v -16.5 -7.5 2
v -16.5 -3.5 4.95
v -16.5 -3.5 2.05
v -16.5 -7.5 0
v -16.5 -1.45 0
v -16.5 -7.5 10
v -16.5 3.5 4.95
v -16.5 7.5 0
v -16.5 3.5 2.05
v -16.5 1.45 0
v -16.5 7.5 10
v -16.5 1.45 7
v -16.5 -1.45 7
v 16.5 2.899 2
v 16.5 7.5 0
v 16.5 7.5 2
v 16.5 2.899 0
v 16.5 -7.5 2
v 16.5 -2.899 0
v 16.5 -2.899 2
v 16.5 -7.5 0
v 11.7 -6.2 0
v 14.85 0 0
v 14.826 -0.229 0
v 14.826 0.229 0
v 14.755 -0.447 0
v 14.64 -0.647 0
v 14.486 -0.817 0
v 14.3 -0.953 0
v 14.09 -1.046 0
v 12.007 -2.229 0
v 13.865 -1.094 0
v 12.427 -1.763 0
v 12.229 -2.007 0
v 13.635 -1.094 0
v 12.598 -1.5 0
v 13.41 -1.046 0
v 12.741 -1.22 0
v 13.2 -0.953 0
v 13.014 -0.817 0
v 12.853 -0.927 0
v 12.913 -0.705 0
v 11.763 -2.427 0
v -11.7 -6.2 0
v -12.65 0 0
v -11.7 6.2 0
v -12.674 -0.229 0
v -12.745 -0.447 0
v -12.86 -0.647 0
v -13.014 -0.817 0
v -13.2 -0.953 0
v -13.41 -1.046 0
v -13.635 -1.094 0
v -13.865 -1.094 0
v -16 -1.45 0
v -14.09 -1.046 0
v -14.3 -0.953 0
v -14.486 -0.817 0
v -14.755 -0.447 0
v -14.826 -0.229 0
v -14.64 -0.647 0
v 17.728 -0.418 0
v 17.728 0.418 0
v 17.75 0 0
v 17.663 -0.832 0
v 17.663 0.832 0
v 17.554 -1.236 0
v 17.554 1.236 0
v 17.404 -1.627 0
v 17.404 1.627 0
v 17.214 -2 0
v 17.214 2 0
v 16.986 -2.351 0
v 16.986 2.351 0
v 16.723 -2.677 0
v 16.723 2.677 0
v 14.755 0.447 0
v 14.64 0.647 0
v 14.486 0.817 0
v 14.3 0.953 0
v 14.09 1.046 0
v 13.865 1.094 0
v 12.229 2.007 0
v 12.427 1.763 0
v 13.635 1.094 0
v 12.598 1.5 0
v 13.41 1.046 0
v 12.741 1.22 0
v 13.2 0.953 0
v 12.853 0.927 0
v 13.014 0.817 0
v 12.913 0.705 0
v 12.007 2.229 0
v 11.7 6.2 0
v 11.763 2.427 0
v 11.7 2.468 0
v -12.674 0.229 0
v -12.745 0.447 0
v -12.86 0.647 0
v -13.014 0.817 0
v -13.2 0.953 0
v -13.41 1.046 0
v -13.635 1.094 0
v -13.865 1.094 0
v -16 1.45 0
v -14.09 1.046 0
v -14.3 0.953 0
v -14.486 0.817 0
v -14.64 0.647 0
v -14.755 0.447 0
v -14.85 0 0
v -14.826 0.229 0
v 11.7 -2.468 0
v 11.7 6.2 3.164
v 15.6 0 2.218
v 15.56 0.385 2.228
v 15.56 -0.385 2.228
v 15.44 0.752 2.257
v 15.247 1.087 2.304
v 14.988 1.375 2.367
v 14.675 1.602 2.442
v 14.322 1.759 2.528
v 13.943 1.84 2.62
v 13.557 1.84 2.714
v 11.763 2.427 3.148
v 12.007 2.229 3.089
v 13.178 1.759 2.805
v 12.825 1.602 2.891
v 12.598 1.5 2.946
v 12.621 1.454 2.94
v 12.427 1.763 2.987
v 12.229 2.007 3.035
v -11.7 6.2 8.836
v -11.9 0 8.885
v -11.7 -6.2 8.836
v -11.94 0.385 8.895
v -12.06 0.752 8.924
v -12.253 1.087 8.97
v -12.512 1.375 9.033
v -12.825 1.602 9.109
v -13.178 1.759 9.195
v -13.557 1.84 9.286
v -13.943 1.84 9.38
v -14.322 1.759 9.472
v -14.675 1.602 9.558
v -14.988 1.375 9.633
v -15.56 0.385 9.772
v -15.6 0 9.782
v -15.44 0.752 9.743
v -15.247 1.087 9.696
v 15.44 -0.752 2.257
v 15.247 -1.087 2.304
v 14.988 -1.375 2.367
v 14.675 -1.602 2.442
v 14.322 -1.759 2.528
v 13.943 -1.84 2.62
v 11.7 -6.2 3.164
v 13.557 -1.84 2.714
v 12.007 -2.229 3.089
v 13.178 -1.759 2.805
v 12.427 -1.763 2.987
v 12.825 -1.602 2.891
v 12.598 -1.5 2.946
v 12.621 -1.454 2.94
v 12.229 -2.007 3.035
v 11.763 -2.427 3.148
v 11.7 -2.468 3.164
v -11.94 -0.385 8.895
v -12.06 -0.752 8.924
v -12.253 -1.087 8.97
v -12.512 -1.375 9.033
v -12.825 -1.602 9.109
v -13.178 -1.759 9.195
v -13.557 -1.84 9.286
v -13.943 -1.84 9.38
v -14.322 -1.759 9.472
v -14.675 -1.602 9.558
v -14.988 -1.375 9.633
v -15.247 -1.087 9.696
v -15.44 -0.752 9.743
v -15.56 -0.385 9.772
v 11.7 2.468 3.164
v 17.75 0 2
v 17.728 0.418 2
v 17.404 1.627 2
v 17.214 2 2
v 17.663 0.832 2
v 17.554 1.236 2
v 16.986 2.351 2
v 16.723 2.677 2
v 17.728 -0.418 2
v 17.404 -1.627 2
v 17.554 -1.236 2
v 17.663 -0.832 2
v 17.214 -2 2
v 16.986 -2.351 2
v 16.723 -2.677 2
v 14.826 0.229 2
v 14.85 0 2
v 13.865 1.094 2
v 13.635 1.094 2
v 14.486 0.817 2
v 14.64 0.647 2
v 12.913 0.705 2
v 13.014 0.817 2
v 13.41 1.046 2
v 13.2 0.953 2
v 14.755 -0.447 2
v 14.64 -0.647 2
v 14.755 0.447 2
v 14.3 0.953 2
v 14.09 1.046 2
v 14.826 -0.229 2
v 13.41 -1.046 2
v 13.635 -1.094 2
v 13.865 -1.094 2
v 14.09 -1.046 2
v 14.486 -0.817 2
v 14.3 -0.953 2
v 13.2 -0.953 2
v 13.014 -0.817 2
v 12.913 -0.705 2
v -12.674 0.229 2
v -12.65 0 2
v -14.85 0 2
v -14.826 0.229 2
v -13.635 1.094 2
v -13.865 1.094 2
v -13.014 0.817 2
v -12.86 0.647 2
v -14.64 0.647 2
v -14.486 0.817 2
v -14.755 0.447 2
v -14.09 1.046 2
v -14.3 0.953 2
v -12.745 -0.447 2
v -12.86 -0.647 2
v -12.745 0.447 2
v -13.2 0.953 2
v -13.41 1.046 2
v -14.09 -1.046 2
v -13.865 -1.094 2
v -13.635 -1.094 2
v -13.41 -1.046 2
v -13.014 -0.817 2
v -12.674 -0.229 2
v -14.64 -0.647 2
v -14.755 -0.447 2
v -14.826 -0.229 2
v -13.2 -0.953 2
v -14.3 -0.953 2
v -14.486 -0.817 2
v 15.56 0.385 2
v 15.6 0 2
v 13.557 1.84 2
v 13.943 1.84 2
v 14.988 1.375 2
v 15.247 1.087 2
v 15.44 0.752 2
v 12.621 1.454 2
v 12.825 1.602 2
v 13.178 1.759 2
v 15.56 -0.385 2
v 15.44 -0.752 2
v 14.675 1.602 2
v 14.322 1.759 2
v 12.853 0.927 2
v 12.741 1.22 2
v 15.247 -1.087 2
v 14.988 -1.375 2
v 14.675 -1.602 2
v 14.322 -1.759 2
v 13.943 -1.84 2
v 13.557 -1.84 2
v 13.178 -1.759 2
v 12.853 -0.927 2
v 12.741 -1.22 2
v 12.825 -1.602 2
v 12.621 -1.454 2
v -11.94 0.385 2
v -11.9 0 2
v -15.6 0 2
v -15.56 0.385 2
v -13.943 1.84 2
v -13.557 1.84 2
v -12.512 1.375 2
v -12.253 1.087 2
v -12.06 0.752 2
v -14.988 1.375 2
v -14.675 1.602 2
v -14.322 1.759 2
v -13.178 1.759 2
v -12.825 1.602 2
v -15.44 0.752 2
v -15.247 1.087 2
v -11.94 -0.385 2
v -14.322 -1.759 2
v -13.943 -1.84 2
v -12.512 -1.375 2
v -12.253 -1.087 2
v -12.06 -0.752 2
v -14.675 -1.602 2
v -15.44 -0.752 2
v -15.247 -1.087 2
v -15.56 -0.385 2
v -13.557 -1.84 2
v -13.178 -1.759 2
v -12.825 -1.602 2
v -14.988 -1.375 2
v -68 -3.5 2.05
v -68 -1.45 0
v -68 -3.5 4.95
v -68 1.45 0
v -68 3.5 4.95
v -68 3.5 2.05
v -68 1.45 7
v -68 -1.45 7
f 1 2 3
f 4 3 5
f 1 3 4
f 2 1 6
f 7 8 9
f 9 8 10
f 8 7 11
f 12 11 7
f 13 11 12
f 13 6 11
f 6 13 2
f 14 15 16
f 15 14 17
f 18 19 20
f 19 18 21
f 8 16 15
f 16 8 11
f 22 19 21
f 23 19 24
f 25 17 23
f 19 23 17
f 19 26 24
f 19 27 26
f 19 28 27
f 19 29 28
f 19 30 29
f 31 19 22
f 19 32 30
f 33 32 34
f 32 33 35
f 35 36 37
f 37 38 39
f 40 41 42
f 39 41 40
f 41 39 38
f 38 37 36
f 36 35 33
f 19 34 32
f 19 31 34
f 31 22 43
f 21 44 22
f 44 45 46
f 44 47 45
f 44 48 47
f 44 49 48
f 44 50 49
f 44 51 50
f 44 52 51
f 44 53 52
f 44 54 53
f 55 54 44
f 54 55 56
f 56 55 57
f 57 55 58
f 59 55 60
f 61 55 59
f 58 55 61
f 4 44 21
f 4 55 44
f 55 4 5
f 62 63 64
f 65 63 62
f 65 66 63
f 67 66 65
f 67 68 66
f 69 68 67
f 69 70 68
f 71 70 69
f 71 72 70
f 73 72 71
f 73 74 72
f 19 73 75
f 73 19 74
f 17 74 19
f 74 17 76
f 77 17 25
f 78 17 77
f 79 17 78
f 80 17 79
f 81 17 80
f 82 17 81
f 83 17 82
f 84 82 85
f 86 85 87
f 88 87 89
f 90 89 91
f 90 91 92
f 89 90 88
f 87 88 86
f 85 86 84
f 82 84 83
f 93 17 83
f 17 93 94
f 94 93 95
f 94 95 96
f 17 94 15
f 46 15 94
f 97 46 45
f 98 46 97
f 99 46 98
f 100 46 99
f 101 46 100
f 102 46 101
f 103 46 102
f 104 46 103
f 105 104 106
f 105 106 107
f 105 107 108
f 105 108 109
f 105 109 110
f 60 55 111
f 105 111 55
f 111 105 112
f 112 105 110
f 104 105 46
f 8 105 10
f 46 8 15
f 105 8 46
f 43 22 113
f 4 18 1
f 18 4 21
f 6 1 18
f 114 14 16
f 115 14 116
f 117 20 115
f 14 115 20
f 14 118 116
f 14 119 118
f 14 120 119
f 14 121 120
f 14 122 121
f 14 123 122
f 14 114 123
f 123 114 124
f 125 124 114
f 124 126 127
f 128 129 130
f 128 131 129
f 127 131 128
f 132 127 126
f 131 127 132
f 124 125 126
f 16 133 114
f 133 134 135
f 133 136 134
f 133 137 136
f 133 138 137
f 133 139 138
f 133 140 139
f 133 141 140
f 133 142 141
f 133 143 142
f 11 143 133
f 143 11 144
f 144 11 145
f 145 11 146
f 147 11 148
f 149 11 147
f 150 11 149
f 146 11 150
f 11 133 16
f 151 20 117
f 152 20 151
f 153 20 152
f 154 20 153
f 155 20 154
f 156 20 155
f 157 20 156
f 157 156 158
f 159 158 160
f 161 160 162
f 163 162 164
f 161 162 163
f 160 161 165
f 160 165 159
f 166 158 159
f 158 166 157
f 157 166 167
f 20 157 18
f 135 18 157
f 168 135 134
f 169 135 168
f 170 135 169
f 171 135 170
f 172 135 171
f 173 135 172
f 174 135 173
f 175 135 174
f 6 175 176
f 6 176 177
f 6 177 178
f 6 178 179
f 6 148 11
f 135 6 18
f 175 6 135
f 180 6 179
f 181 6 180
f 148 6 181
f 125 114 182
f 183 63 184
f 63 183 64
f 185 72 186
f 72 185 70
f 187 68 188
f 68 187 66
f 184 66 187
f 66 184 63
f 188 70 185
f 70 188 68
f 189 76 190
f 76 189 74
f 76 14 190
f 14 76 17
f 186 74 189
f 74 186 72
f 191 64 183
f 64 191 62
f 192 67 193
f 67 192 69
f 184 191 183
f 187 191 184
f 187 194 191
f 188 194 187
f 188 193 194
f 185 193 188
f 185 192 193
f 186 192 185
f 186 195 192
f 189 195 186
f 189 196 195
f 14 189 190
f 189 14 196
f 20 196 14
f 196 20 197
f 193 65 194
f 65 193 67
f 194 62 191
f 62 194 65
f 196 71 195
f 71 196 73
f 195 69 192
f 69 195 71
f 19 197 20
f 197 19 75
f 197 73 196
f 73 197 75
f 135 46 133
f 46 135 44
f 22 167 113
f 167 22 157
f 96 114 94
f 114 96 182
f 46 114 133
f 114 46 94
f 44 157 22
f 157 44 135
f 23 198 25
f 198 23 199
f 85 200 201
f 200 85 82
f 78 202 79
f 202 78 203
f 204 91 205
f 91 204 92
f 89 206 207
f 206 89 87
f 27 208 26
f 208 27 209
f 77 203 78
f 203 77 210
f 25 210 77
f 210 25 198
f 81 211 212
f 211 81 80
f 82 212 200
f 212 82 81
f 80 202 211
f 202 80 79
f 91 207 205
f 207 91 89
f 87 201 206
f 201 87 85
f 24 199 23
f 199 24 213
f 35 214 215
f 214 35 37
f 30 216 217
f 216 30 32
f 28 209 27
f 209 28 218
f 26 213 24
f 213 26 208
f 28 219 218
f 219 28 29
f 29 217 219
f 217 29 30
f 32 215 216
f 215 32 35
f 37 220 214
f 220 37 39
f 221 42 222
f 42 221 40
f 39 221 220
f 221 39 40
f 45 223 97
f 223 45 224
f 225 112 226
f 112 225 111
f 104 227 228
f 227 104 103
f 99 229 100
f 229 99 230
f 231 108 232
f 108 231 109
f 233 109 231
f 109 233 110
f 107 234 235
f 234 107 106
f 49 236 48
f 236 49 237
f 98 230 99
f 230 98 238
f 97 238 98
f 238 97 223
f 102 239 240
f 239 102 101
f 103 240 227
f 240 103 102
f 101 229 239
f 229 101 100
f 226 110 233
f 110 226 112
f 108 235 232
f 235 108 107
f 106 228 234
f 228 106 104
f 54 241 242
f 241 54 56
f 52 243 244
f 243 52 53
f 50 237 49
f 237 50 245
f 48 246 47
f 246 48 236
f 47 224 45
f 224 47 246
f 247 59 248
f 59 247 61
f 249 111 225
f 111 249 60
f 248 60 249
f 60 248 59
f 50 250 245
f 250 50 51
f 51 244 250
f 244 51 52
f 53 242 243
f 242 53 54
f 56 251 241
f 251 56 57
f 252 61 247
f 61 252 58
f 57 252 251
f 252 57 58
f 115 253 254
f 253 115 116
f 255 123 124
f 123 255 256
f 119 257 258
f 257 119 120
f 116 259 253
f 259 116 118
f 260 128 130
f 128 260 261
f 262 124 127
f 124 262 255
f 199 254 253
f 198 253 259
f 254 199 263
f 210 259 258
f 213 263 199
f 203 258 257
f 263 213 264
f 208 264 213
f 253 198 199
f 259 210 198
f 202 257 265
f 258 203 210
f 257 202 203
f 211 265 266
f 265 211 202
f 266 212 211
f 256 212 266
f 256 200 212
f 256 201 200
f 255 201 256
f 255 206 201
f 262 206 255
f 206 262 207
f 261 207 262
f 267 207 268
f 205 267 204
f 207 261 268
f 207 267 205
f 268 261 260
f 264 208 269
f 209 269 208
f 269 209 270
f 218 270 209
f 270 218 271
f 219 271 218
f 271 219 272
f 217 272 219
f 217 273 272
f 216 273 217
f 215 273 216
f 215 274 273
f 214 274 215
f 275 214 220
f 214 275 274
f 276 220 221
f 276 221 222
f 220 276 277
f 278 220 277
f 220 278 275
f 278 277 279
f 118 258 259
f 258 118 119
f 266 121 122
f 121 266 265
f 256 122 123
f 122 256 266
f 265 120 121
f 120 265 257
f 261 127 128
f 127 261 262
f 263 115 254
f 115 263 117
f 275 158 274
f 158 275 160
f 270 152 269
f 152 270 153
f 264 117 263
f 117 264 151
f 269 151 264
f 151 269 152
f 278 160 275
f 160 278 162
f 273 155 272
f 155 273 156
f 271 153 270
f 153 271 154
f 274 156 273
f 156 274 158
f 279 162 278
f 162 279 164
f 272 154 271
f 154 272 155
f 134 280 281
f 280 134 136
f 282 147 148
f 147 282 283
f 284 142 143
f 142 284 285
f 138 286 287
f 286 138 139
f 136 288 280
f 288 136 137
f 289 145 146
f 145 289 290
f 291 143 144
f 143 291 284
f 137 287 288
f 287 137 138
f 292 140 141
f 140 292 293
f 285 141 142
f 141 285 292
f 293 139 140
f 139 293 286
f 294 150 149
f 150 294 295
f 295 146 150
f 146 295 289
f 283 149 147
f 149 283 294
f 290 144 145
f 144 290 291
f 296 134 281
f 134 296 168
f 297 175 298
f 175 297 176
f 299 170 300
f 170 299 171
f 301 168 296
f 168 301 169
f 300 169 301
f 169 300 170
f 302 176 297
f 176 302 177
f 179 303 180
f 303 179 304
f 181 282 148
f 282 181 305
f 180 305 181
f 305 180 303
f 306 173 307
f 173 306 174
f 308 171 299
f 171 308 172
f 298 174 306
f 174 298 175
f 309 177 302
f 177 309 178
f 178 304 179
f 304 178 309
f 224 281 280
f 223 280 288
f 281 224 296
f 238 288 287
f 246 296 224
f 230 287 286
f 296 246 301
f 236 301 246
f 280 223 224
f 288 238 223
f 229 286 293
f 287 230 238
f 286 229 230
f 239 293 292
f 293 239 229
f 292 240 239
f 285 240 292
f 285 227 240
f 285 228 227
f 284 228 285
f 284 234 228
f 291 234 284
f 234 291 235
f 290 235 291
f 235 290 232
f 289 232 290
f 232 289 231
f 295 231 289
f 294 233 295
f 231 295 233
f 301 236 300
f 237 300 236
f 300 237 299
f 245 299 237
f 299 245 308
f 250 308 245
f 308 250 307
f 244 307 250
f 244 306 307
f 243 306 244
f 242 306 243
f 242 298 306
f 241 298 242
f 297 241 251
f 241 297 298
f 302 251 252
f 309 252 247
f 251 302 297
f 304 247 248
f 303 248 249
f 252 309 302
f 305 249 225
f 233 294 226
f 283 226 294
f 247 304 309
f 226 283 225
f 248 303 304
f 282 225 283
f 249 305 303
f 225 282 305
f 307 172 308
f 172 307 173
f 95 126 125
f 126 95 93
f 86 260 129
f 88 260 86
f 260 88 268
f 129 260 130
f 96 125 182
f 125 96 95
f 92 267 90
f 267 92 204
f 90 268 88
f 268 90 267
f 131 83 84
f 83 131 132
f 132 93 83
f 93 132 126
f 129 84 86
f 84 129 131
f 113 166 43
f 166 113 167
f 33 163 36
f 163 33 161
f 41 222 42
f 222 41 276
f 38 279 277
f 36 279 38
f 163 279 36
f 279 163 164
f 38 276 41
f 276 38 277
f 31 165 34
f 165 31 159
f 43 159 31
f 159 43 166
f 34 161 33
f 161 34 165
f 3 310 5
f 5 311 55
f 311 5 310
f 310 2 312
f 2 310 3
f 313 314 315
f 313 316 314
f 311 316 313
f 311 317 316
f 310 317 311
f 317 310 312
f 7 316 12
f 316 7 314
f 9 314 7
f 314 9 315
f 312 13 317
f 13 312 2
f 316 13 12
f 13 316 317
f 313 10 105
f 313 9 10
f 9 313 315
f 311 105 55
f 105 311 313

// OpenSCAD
servo_bracket();
translate([-16,0,0])rotate([0,0,180])bar(52);

module servo_bracket(){
difference(){
union(){
translate([0,0,1])cube([33,15,2],center=true);
translate([0,7.5,2])
rotate([90,0,0])linear_extrude(height=15)
polygon([[-16.5,0],[16.5,0],[-16.5,8]]);
translate([13.75,0,0])cylinder(d=8,h=2,$fn=60);
}
cube([23.4,12.4,50],center=true);
translate([13.75,0,-1])cylinder(d=2.2,h=5,$fn=30);
translate([-13.75,0,-1])cylinder(d=2.2,h=50,$fn=30);
translate([13.75,0,2])cylinder(d=3.7,h=5,$fn=30);
translate([-13.75,0,2])cylinder(d=3.7,h=50,$fn=30);
translate([10,0,0])cylinder(d=6,h=12,$fn=60);
}
}

module bar(length){
translate([0,0,3.5])rotate([360/16,0,0])rotate([0,90,0])
    cylinder(d=7.577,h=length,$fn=8);
}
